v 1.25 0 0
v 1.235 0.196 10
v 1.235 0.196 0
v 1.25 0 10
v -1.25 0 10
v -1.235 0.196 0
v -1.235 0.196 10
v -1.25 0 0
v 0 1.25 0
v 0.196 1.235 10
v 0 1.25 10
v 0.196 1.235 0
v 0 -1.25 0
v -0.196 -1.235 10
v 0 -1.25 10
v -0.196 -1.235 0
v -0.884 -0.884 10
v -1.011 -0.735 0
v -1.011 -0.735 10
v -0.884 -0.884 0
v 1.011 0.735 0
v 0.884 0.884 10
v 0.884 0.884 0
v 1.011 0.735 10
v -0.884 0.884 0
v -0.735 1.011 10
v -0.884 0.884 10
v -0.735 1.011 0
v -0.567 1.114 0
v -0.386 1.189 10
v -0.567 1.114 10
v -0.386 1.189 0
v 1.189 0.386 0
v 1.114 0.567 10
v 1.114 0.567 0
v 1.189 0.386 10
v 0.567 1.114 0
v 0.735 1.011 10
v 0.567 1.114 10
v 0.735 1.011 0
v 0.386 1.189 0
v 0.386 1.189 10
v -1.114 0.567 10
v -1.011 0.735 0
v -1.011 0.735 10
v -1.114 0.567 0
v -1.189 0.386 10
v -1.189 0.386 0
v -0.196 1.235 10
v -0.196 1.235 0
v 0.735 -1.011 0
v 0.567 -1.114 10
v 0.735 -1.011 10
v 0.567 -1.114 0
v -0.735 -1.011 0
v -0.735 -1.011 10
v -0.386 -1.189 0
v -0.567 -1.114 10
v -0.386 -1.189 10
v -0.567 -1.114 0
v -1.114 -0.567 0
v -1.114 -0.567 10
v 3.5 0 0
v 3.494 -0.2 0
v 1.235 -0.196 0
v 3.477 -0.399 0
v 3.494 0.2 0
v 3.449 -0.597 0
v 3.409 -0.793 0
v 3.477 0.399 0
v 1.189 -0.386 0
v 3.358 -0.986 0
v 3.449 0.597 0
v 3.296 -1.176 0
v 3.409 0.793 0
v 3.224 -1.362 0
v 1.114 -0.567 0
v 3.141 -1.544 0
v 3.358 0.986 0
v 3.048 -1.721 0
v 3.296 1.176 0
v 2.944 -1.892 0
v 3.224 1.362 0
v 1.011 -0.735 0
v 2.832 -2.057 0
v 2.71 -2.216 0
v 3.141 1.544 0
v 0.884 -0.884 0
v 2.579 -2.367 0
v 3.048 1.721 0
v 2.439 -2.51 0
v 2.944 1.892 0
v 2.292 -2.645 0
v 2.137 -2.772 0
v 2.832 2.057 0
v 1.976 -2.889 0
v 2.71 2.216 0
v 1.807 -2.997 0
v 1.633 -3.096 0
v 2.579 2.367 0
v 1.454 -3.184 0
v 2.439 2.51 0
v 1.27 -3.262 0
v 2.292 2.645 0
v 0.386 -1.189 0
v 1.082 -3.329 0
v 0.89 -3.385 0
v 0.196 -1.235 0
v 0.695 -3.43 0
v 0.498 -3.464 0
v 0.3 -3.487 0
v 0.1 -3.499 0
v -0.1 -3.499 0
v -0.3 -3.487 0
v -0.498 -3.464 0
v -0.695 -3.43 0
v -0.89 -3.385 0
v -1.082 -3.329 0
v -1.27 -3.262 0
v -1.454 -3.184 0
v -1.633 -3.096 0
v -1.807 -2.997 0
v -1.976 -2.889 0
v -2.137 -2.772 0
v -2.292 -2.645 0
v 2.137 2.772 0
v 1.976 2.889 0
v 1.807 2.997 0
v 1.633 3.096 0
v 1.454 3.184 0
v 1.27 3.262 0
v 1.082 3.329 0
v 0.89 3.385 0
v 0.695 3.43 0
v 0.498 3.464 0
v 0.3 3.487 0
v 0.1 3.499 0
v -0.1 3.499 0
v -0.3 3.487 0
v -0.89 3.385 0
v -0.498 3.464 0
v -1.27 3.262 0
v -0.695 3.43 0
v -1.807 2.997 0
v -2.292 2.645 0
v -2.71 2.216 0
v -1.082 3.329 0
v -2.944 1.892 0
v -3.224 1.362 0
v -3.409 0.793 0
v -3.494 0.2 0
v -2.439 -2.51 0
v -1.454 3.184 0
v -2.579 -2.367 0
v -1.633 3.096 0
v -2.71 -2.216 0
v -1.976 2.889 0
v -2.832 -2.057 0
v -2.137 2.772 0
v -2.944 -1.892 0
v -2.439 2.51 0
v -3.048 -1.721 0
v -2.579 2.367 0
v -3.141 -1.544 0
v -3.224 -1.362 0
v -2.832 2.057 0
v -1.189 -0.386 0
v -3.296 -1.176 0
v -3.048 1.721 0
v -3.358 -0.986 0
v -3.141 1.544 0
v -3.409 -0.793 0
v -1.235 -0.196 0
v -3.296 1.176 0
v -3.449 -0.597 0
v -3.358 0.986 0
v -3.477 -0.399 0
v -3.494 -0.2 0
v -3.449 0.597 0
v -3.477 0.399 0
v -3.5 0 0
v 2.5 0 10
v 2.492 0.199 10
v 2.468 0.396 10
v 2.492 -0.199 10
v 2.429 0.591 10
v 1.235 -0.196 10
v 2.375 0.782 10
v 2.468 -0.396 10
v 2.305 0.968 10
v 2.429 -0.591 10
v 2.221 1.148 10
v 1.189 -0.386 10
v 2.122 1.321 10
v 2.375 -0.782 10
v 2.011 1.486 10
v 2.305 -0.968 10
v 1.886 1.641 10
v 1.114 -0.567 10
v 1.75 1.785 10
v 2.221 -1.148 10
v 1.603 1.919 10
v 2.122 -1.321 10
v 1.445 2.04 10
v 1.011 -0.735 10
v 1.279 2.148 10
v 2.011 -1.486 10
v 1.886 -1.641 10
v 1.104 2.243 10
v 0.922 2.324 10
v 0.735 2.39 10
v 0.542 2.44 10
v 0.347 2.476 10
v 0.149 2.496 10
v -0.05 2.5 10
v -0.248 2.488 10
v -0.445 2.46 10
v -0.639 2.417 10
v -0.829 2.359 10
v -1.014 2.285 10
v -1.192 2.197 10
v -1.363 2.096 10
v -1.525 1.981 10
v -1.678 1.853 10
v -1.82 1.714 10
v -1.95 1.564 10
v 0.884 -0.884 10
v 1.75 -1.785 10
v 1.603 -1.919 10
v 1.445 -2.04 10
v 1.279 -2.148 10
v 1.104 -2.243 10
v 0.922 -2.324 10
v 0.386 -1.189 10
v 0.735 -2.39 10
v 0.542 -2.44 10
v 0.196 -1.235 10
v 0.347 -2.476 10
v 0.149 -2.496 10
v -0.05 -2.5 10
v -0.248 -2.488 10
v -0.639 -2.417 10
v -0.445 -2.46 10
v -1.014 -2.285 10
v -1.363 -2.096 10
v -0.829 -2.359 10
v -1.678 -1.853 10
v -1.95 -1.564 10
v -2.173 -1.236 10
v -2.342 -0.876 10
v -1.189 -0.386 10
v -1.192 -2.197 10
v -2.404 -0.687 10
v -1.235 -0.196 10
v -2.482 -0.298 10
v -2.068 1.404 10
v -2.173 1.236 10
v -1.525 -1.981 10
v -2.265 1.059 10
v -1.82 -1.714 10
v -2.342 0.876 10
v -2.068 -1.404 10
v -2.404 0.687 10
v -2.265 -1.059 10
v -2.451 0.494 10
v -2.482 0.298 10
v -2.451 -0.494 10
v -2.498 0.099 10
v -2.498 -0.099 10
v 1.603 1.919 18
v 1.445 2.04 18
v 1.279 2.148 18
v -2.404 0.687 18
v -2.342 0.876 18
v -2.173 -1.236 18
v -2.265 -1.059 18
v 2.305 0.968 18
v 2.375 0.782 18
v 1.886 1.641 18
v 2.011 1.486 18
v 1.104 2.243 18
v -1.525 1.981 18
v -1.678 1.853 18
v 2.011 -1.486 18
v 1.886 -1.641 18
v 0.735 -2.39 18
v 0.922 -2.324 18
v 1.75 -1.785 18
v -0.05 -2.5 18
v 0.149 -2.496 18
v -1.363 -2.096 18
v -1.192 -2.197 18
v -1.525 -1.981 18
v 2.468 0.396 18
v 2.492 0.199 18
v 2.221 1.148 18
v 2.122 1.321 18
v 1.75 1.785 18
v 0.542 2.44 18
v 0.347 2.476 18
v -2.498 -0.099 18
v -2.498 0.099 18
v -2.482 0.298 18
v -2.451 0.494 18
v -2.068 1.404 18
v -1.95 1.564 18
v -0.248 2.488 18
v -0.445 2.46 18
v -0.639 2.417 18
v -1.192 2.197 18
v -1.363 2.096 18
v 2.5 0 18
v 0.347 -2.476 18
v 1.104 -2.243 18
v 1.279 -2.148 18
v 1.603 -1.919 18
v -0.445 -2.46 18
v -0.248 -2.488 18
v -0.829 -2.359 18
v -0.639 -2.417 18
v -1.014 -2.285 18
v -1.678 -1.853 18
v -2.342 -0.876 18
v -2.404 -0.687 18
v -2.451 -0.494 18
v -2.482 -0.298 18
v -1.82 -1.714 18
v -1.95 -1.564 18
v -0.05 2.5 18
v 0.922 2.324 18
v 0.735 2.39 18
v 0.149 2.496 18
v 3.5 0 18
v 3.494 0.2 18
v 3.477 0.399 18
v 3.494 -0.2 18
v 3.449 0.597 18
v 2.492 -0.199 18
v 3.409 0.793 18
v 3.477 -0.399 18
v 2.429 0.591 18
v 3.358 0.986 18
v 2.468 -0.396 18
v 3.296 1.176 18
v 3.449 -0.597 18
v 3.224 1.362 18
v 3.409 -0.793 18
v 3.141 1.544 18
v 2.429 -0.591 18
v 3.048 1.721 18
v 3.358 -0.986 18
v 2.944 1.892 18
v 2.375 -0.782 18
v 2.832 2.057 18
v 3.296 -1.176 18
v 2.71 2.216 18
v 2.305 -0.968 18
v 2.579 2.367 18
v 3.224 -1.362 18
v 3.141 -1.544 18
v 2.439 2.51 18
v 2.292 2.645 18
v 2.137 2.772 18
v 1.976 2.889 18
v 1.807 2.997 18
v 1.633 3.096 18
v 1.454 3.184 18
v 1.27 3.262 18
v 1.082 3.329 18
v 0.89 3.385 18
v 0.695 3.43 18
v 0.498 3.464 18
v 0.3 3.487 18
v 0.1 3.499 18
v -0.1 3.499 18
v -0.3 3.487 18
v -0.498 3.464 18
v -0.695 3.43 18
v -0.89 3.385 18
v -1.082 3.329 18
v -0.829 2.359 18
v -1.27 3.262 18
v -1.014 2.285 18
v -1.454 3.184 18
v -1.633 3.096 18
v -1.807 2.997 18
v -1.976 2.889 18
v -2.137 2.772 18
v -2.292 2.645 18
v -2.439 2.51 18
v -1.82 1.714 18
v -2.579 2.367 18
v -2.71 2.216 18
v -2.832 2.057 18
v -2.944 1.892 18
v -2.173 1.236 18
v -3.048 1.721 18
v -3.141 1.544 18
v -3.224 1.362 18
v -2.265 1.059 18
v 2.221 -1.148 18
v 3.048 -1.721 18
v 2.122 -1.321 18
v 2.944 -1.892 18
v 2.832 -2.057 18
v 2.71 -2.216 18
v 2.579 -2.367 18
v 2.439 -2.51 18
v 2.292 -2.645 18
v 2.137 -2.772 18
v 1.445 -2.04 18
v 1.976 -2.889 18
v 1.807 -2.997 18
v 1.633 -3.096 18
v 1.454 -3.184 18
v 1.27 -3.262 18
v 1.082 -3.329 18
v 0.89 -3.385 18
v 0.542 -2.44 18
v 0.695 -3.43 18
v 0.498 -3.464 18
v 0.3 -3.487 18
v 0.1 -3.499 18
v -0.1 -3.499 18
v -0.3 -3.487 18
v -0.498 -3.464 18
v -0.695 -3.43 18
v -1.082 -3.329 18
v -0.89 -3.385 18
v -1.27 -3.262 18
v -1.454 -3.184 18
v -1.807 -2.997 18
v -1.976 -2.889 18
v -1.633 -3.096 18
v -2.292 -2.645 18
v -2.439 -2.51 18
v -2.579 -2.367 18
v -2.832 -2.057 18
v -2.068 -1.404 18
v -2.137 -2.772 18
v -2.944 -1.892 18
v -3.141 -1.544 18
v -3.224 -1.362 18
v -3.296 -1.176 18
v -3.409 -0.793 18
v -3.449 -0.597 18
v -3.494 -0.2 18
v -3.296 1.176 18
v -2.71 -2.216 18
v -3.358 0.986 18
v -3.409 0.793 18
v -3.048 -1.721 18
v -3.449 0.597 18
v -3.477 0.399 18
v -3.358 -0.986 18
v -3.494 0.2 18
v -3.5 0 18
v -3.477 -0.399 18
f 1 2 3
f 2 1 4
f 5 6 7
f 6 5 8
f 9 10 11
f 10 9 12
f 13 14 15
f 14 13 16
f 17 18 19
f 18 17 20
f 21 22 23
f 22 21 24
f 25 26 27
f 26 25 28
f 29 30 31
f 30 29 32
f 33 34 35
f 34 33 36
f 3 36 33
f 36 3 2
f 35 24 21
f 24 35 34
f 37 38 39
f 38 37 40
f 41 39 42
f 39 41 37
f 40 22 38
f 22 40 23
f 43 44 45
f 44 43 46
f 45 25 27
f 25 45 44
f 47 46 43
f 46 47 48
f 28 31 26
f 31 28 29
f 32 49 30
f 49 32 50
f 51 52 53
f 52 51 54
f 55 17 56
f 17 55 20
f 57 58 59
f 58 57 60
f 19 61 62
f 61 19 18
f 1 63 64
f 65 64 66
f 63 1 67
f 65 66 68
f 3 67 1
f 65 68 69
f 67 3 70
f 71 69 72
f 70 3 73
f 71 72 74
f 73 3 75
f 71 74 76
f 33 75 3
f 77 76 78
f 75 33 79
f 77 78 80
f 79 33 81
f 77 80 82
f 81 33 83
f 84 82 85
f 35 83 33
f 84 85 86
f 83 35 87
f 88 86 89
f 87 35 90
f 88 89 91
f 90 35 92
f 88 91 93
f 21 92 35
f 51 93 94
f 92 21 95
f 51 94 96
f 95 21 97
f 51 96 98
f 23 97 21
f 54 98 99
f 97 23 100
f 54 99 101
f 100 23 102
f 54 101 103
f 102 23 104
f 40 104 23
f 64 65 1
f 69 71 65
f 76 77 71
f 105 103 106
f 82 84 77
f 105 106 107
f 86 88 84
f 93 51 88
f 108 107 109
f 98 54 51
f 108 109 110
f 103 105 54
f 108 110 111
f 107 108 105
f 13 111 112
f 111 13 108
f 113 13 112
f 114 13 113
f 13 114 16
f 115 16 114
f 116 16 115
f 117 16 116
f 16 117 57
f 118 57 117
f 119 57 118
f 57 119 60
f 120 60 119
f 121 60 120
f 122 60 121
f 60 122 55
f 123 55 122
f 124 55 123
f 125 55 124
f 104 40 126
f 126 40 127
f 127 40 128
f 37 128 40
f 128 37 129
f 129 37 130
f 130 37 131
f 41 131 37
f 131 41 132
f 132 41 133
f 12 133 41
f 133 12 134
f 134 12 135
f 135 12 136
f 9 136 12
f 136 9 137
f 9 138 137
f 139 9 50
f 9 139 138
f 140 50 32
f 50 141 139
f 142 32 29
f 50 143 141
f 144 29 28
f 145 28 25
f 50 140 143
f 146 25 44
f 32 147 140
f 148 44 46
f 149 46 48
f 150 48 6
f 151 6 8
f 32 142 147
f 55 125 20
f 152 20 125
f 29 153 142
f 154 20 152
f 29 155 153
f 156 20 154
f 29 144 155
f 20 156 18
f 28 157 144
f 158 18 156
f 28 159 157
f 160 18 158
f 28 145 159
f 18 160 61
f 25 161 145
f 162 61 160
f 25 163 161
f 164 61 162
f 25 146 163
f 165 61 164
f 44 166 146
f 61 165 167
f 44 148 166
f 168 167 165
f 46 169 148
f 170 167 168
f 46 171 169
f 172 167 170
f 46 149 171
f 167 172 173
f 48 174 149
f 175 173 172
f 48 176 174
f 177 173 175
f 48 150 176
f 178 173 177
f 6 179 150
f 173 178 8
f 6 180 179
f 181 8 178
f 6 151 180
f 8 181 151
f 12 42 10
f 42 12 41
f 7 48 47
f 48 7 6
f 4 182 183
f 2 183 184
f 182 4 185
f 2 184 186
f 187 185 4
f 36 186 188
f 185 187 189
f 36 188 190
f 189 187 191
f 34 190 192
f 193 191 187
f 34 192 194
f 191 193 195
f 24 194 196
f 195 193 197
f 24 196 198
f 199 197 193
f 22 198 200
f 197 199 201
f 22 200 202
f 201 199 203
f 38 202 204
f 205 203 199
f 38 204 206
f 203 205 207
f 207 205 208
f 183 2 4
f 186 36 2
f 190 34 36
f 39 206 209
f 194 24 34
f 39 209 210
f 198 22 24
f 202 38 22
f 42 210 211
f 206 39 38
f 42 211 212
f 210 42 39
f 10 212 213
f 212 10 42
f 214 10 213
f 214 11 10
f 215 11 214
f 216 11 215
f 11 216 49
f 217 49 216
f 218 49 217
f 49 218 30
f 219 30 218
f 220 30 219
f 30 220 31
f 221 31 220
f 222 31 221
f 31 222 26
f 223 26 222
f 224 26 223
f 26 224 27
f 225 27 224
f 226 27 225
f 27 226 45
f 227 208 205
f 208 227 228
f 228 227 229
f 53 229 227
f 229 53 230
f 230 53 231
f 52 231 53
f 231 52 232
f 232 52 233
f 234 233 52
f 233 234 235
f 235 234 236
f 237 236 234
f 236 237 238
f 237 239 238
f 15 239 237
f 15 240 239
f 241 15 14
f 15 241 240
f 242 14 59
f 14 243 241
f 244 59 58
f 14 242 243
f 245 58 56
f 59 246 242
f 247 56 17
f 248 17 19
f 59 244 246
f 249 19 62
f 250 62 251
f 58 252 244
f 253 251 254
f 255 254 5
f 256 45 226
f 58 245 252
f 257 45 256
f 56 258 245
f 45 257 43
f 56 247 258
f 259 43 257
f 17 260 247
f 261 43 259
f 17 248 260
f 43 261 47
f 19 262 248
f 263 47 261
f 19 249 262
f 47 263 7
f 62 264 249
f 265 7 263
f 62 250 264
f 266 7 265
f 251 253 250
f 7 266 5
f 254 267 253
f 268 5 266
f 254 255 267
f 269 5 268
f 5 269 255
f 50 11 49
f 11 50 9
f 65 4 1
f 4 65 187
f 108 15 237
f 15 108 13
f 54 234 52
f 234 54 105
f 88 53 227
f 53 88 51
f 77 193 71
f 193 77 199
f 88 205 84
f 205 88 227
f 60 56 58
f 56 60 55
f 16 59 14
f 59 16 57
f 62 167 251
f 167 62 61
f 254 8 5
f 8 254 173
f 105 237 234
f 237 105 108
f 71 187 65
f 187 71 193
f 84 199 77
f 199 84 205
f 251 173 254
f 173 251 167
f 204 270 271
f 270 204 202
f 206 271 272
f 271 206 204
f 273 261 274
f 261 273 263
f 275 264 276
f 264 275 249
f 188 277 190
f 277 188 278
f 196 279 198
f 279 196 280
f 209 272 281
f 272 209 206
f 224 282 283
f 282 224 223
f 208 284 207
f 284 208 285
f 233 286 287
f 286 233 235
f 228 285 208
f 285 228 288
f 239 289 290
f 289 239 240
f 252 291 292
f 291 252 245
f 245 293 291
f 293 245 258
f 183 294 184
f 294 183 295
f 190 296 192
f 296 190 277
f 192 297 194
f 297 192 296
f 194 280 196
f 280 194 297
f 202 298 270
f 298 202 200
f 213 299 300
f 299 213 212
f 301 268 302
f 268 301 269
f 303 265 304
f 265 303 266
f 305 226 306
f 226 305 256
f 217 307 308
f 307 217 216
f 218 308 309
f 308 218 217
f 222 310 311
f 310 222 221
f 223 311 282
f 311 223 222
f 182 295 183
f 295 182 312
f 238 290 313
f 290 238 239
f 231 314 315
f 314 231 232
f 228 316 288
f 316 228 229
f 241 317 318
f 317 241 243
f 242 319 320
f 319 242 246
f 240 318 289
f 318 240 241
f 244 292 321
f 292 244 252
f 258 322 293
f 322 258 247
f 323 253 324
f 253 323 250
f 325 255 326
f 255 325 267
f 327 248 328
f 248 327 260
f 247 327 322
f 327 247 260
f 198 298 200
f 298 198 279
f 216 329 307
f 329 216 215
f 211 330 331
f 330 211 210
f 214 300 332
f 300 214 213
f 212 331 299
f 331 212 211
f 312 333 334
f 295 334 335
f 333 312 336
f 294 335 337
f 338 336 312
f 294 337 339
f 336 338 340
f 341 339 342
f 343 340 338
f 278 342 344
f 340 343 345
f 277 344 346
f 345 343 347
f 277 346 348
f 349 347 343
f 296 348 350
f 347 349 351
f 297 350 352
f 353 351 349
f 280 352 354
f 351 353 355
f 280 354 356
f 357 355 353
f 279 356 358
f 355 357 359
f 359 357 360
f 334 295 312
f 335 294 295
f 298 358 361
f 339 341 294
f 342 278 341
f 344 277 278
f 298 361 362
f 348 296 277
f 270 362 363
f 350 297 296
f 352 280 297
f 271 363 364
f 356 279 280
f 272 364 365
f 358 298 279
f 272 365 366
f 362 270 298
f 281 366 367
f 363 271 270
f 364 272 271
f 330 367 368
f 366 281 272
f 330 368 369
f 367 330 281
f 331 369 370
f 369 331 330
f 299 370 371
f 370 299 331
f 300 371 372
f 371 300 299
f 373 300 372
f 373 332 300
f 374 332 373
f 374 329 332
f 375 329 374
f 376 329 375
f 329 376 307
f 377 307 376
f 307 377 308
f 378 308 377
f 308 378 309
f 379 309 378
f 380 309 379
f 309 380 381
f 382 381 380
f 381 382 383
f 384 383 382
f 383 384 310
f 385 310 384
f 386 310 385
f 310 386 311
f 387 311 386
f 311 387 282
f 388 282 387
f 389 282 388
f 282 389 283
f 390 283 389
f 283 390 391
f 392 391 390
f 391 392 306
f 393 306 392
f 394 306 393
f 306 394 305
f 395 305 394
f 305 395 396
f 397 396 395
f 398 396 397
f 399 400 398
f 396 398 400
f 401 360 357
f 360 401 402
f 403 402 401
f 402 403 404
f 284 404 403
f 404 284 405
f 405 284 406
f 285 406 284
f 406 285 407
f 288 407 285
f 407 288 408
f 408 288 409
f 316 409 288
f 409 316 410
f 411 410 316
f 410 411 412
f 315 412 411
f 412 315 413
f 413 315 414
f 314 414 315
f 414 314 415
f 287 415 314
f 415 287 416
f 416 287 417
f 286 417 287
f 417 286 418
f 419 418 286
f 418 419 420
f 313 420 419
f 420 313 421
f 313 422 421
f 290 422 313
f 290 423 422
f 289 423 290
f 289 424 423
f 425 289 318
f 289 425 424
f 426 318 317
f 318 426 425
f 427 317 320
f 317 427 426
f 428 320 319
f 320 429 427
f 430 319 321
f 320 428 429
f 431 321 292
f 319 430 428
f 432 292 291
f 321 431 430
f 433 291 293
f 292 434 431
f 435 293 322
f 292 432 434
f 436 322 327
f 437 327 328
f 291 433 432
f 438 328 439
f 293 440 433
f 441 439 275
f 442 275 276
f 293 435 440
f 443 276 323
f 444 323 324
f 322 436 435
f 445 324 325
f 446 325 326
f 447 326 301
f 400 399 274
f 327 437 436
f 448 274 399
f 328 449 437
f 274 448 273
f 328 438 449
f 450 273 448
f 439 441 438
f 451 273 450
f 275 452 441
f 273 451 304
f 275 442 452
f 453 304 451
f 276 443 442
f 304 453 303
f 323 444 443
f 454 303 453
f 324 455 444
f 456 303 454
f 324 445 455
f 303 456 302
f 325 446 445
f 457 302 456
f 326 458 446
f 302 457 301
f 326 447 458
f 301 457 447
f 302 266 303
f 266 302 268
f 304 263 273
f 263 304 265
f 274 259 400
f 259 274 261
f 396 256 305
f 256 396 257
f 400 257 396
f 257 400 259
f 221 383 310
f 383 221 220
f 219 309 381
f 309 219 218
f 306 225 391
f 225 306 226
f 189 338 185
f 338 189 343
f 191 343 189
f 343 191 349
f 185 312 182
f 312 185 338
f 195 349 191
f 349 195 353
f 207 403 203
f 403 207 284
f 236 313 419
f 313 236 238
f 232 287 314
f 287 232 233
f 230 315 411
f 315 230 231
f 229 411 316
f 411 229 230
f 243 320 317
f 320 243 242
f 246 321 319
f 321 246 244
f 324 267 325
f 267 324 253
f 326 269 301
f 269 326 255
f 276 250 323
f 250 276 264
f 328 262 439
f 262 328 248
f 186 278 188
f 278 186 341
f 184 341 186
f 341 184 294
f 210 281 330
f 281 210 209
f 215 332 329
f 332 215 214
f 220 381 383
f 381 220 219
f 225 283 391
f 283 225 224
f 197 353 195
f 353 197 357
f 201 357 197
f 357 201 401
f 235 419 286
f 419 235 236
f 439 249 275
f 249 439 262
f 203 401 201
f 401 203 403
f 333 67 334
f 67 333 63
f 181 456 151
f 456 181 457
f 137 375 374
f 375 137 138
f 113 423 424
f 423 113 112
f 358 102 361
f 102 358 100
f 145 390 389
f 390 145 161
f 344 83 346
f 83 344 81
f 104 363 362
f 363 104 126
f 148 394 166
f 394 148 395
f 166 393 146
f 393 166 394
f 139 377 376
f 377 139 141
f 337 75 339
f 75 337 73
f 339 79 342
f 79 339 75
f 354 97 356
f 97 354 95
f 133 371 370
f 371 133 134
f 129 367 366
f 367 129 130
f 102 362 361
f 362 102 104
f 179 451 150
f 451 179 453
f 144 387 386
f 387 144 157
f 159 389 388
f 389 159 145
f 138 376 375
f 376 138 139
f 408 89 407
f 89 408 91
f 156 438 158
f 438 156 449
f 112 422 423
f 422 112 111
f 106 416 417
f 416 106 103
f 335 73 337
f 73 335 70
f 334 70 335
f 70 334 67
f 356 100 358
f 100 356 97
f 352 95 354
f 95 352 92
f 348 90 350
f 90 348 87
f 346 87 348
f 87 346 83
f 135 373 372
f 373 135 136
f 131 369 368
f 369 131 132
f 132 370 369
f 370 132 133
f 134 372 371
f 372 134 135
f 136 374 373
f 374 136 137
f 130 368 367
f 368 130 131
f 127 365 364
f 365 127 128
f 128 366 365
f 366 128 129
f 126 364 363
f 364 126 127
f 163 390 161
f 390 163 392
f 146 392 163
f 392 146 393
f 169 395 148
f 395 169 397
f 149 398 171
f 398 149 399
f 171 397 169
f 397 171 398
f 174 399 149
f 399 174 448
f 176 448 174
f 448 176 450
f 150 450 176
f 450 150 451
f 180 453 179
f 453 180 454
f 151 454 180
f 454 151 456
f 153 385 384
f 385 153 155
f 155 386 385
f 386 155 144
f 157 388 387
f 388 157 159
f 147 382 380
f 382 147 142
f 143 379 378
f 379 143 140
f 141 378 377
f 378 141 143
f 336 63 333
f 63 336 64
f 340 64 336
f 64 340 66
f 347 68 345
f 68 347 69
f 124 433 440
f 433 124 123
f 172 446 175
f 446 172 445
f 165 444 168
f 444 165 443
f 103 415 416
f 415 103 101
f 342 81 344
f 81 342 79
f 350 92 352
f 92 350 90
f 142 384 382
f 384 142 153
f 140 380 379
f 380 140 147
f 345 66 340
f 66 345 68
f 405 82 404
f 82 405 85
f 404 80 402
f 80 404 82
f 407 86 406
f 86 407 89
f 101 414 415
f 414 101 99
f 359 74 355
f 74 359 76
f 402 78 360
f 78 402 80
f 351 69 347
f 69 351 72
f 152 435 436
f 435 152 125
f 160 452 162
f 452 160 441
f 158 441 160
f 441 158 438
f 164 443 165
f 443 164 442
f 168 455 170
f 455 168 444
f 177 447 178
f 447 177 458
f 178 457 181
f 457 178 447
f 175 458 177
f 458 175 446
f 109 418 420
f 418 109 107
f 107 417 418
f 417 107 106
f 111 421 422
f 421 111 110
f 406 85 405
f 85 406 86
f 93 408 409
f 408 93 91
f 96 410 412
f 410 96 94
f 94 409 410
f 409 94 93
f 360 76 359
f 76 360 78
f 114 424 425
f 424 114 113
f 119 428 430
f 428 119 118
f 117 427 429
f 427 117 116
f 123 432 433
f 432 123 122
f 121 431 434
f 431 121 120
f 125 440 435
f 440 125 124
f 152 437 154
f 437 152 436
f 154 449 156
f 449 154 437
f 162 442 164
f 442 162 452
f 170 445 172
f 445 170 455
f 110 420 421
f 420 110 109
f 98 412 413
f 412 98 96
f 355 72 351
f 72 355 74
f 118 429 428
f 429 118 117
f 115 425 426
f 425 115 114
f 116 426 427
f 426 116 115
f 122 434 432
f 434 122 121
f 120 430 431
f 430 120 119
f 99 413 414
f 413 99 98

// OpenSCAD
// file: config.scad
tipLength = 20;
tipDiameter = 7;

capGap = 0.2;
ropeWidth = 5;

// ---

capBigDiameter = tipDiameter;
capBigHeight = 2;
capSmallDiameter = ropeWidth - capGap;
capSmallHeight = 2;

tubeLength = tipLength - capBigHeight;
tubeDiameter = tipDiameter;
tubeBigHoleLength = 8;
tubeBigHoleDiameter = ropeWidth;
tubeSmallHoleLength = tubeLength - tubeBigHoleLength;
tubeSmallHoleDiameter = 2.5;

$fa = 1;
$fs = 0.2;
// main file
include <config.scad>

difference() {
    cylinder(d = tubeDiameter, h = tubeLength);
    
    union() {
        cylinder(d = tubeSmallHoleDiameter, h = tubeSmallHoleLength);
        
        translate([0, 0, tubeSmallHoleLength]) cylinder(d = tubeBigHoleDiameter, h = tubeBigHoleLength);
    }
}
